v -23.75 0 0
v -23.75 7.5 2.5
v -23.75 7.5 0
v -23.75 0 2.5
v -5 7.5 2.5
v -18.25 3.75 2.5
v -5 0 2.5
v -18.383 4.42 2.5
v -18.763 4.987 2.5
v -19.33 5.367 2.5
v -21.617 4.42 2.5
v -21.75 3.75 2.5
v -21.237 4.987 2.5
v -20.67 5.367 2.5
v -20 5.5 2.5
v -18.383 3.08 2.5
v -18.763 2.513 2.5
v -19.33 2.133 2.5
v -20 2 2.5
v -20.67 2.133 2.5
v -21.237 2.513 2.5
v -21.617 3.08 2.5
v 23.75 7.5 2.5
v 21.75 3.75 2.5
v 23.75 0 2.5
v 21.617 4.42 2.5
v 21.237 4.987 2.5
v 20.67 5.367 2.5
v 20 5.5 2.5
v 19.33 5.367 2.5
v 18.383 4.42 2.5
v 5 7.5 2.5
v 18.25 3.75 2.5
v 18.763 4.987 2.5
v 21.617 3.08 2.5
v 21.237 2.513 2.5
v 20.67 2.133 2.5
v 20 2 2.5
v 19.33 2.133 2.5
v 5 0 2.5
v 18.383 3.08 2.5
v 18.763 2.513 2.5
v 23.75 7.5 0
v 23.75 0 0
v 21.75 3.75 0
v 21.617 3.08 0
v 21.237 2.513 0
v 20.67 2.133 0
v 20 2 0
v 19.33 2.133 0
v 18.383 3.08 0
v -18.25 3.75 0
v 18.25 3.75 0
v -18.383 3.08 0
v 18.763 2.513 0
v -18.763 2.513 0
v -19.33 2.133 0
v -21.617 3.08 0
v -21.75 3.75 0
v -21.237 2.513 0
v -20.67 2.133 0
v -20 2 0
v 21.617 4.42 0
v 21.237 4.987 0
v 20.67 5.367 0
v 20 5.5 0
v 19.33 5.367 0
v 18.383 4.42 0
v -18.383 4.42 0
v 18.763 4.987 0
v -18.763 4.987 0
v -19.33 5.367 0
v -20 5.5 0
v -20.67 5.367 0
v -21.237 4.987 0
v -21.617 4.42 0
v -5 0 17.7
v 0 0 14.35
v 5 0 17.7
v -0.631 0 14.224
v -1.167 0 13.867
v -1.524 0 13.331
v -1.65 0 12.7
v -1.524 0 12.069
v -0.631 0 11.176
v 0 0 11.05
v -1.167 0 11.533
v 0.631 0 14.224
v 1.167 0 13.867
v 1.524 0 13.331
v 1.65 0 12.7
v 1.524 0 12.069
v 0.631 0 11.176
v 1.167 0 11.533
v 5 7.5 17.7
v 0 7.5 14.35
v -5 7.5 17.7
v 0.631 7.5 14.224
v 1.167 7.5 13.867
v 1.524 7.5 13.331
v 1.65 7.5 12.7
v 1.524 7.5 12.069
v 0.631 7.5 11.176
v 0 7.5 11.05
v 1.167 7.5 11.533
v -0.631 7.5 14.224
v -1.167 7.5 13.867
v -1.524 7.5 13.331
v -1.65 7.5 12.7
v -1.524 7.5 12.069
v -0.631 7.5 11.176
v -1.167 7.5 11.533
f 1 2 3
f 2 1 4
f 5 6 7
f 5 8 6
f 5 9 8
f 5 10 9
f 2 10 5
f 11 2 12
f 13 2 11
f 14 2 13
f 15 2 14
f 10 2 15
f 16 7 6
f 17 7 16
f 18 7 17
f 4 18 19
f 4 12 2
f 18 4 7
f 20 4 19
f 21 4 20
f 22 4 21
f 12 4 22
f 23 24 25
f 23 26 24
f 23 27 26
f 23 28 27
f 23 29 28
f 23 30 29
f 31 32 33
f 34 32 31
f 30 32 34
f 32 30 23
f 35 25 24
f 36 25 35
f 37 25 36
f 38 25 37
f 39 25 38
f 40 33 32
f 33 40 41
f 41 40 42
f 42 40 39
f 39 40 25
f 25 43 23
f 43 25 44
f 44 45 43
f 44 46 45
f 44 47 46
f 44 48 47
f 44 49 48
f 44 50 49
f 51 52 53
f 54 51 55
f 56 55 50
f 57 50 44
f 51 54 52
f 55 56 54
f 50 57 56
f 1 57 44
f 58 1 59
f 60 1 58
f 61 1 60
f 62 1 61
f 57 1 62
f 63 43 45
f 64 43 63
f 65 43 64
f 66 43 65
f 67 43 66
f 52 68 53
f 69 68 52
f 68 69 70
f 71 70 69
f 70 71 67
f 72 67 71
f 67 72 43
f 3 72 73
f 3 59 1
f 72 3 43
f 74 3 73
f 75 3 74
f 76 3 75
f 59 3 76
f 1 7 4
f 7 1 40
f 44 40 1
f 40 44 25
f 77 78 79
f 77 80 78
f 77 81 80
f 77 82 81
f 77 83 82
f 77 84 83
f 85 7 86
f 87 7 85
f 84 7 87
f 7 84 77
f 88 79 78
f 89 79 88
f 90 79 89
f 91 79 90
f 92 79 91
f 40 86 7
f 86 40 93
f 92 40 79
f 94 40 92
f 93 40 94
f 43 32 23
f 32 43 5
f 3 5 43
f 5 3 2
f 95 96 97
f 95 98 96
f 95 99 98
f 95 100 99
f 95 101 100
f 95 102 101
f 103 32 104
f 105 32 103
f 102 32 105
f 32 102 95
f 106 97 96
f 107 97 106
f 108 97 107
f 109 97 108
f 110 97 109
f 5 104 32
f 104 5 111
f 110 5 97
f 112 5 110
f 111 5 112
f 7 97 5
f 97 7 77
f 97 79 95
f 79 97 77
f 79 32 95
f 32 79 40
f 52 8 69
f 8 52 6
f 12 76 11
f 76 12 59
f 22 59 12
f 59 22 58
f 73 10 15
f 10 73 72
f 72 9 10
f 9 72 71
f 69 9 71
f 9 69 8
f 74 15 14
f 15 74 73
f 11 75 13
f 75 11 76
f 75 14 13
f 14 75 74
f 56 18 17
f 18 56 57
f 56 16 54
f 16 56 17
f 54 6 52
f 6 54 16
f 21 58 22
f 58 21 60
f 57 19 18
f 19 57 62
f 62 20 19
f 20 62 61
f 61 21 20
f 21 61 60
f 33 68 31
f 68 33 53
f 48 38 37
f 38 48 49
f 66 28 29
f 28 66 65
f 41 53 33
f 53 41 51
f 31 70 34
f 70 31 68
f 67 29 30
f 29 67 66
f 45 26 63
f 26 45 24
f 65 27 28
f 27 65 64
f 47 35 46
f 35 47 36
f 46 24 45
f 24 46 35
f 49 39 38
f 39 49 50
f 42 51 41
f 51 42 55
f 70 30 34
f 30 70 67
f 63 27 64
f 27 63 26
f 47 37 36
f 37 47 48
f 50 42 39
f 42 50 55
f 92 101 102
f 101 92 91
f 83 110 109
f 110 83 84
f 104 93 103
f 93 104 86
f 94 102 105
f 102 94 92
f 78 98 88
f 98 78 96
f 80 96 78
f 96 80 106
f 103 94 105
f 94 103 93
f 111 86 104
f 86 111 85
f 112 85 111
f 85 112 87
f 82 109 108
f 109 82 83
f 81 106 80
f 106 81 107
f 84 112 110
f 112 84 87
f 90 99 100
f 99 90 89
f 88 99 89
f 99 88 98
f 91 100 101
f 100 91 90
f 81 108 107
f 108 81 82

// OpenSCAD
/*

An adapter to fit an LED behind a vertical microscope slide

TODO: locate the SCAD source file for the vertical slide clips!

(c) 2017 Richard Bowman - released under CERN Open Hardware License

*/

use <utilities.scad>;

hole_sep = 40;
hole_d = 3.5;
beam_h = 12.7;
d = 0.05;

w = hole_sep + hole_d + 4;
t = hole_d+4;
$fn=16;

difference(){
    union(){
        translate([-w/2,0,0]) cube([w,t,2.5]); //mounts to two holes
        translate([-10/2,0,0]) cube([10,t,beam_h+5]);
    }
    
    reflect([1,0,0]) translate([-hole_sep/2,t/2,-1]) cylinder(d=hole_d,h=999);
    translate([0,-99,beam_h]) rotate([-90,0,0]) cylinder(d=3.3, h=999);

}
